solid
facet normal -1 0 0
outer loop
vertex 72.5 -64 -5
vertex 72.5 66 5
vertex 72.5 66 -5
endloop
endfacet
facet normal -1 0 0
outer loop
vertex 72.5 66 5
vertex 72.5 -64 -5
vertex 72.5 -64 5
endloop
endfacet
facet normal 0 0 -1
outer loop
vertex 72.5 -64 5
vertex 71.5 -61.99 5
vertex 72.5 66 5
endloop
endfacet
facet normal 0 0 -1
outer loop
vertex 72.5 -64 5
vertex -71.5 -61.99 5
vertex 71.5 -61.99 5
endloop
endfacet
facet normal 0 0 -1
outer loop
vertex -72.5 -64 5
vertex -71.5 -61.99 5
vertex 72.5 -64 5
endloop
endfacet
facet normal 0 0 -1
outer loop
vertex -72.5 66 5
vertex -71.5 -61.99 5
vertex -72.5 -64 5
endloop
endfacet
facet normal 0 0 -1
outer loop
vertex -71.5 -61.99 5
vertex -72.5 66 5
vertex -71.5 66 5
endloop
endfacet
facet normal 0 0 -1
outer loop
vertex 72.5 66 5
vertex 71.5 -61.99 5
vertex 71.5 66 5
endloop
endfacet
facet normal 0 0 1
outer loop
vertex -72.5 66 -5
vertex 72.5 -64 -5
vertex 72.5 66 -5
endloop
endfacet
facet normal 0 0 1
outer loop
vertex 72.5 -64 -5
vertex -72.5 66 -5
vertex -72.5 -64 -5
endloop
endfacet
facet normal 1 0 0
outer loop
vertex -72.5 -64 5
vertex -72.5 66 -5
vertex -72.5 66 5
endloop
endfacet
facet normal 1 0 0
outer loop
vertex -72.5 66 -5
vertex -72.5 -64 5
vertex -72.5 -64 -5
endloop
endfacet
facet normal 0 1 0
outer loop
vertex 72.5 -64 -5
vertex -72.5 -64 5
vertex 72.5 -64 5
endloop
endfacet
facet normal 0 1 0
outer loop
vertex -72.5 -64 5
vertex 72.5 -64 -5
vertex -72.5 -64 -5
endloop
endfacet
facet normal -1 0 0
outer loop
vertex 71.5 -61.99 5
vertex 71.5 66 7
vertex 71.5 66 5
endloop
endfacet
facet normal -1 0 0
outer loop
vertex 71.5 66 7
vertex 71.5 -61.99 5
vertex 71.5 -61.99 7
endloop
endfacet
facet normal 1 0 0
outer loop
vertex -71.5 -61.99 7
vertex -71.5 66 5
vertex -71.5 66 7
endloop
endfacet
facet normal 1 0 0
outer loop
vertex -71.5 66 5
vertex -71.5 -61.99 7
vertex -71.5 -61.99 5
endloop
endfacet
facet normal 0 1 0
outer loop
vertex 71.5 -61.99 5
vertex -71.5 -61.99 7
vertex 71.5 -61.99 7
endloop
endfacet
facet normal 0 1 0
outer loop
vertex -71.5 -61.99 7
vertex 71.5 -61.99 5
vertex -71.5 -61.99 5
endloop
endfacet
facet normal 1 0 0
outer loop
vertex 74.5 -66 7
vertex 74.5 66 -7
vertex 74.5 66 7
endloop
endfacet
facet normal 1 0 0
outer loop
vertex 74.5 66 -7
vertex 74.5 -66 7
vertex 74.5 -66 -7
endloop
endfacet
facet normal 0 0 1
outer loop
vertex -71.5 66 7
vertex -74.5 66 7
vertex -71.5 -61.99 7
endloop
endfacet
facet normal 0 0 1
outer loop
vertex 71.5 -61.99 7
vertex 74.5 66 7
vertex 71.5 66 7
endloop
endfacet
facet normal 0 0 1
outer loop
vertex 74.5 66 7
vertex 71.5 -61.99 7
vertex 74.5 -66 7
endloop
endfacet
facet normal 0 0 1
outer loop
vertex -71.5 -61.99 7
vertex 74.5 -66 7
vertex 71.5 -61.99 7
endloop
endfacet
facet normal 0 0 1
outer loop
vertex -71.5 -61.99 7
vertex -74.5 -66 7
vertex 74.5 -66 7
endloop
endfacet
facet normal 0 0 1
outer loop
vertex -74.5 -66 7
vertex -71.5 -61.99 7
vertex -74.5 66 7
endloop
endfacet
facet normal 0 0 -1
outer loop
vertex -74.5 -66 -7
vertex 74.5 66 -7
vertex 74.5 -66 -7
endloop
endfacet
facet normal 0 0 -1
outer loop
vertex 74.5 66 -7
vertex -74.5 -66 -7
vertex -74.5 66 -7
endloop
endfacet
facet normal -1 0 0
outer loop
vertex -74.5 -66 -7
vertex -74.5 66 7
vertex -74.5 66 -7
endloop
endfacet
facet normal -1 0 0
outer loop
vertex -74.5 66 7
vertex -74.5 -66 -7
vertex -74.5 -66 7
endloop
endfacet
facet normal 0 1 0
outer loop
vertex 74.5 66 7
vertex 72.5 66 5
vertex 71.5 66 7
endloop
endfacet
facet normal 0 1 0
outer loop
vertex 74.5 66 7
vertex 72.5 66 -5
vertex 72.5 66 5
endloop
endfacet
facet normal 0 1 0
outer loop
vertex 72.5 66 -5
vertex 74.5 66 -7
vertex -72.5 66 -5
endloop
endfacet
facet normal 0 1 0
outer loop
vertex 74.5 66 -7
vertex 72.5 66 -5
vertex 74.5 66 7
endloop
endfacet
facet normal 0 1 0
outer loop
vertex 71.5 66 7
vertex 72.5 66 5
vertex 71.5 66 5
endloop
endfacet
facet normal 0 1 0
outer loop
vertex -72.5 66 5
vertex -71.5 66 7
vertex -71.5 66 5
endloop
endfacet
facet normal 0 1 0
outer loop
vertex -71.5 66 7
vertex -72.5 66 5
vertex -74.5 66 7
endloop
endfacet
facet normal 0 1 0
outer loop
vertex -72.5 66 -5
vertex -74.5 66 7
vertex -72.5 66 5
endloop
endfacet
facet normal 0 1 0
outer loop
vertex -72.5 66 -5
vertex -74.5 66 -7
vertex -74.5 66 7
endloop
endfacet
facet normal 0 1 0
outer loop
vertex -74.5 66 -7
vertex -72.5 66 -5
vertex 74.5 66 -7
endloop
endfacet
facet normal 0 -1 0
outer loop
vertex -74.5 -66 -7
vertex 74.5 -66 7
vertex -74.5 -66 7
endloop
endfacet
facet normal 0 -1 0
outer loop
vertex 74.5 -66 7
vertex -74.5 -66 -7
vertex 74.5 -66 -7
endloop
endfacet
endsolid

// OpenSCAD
difference() {
    cube([145+2+2, 130+2, 10+2+2], center=true);
    translate([0, 2, 0]) {
        cube([145, 130+2, 10], center=true);
        translate([0, 0.01, 3])
            cube([145-2, 130-2, 10], center=true);
    }
}
